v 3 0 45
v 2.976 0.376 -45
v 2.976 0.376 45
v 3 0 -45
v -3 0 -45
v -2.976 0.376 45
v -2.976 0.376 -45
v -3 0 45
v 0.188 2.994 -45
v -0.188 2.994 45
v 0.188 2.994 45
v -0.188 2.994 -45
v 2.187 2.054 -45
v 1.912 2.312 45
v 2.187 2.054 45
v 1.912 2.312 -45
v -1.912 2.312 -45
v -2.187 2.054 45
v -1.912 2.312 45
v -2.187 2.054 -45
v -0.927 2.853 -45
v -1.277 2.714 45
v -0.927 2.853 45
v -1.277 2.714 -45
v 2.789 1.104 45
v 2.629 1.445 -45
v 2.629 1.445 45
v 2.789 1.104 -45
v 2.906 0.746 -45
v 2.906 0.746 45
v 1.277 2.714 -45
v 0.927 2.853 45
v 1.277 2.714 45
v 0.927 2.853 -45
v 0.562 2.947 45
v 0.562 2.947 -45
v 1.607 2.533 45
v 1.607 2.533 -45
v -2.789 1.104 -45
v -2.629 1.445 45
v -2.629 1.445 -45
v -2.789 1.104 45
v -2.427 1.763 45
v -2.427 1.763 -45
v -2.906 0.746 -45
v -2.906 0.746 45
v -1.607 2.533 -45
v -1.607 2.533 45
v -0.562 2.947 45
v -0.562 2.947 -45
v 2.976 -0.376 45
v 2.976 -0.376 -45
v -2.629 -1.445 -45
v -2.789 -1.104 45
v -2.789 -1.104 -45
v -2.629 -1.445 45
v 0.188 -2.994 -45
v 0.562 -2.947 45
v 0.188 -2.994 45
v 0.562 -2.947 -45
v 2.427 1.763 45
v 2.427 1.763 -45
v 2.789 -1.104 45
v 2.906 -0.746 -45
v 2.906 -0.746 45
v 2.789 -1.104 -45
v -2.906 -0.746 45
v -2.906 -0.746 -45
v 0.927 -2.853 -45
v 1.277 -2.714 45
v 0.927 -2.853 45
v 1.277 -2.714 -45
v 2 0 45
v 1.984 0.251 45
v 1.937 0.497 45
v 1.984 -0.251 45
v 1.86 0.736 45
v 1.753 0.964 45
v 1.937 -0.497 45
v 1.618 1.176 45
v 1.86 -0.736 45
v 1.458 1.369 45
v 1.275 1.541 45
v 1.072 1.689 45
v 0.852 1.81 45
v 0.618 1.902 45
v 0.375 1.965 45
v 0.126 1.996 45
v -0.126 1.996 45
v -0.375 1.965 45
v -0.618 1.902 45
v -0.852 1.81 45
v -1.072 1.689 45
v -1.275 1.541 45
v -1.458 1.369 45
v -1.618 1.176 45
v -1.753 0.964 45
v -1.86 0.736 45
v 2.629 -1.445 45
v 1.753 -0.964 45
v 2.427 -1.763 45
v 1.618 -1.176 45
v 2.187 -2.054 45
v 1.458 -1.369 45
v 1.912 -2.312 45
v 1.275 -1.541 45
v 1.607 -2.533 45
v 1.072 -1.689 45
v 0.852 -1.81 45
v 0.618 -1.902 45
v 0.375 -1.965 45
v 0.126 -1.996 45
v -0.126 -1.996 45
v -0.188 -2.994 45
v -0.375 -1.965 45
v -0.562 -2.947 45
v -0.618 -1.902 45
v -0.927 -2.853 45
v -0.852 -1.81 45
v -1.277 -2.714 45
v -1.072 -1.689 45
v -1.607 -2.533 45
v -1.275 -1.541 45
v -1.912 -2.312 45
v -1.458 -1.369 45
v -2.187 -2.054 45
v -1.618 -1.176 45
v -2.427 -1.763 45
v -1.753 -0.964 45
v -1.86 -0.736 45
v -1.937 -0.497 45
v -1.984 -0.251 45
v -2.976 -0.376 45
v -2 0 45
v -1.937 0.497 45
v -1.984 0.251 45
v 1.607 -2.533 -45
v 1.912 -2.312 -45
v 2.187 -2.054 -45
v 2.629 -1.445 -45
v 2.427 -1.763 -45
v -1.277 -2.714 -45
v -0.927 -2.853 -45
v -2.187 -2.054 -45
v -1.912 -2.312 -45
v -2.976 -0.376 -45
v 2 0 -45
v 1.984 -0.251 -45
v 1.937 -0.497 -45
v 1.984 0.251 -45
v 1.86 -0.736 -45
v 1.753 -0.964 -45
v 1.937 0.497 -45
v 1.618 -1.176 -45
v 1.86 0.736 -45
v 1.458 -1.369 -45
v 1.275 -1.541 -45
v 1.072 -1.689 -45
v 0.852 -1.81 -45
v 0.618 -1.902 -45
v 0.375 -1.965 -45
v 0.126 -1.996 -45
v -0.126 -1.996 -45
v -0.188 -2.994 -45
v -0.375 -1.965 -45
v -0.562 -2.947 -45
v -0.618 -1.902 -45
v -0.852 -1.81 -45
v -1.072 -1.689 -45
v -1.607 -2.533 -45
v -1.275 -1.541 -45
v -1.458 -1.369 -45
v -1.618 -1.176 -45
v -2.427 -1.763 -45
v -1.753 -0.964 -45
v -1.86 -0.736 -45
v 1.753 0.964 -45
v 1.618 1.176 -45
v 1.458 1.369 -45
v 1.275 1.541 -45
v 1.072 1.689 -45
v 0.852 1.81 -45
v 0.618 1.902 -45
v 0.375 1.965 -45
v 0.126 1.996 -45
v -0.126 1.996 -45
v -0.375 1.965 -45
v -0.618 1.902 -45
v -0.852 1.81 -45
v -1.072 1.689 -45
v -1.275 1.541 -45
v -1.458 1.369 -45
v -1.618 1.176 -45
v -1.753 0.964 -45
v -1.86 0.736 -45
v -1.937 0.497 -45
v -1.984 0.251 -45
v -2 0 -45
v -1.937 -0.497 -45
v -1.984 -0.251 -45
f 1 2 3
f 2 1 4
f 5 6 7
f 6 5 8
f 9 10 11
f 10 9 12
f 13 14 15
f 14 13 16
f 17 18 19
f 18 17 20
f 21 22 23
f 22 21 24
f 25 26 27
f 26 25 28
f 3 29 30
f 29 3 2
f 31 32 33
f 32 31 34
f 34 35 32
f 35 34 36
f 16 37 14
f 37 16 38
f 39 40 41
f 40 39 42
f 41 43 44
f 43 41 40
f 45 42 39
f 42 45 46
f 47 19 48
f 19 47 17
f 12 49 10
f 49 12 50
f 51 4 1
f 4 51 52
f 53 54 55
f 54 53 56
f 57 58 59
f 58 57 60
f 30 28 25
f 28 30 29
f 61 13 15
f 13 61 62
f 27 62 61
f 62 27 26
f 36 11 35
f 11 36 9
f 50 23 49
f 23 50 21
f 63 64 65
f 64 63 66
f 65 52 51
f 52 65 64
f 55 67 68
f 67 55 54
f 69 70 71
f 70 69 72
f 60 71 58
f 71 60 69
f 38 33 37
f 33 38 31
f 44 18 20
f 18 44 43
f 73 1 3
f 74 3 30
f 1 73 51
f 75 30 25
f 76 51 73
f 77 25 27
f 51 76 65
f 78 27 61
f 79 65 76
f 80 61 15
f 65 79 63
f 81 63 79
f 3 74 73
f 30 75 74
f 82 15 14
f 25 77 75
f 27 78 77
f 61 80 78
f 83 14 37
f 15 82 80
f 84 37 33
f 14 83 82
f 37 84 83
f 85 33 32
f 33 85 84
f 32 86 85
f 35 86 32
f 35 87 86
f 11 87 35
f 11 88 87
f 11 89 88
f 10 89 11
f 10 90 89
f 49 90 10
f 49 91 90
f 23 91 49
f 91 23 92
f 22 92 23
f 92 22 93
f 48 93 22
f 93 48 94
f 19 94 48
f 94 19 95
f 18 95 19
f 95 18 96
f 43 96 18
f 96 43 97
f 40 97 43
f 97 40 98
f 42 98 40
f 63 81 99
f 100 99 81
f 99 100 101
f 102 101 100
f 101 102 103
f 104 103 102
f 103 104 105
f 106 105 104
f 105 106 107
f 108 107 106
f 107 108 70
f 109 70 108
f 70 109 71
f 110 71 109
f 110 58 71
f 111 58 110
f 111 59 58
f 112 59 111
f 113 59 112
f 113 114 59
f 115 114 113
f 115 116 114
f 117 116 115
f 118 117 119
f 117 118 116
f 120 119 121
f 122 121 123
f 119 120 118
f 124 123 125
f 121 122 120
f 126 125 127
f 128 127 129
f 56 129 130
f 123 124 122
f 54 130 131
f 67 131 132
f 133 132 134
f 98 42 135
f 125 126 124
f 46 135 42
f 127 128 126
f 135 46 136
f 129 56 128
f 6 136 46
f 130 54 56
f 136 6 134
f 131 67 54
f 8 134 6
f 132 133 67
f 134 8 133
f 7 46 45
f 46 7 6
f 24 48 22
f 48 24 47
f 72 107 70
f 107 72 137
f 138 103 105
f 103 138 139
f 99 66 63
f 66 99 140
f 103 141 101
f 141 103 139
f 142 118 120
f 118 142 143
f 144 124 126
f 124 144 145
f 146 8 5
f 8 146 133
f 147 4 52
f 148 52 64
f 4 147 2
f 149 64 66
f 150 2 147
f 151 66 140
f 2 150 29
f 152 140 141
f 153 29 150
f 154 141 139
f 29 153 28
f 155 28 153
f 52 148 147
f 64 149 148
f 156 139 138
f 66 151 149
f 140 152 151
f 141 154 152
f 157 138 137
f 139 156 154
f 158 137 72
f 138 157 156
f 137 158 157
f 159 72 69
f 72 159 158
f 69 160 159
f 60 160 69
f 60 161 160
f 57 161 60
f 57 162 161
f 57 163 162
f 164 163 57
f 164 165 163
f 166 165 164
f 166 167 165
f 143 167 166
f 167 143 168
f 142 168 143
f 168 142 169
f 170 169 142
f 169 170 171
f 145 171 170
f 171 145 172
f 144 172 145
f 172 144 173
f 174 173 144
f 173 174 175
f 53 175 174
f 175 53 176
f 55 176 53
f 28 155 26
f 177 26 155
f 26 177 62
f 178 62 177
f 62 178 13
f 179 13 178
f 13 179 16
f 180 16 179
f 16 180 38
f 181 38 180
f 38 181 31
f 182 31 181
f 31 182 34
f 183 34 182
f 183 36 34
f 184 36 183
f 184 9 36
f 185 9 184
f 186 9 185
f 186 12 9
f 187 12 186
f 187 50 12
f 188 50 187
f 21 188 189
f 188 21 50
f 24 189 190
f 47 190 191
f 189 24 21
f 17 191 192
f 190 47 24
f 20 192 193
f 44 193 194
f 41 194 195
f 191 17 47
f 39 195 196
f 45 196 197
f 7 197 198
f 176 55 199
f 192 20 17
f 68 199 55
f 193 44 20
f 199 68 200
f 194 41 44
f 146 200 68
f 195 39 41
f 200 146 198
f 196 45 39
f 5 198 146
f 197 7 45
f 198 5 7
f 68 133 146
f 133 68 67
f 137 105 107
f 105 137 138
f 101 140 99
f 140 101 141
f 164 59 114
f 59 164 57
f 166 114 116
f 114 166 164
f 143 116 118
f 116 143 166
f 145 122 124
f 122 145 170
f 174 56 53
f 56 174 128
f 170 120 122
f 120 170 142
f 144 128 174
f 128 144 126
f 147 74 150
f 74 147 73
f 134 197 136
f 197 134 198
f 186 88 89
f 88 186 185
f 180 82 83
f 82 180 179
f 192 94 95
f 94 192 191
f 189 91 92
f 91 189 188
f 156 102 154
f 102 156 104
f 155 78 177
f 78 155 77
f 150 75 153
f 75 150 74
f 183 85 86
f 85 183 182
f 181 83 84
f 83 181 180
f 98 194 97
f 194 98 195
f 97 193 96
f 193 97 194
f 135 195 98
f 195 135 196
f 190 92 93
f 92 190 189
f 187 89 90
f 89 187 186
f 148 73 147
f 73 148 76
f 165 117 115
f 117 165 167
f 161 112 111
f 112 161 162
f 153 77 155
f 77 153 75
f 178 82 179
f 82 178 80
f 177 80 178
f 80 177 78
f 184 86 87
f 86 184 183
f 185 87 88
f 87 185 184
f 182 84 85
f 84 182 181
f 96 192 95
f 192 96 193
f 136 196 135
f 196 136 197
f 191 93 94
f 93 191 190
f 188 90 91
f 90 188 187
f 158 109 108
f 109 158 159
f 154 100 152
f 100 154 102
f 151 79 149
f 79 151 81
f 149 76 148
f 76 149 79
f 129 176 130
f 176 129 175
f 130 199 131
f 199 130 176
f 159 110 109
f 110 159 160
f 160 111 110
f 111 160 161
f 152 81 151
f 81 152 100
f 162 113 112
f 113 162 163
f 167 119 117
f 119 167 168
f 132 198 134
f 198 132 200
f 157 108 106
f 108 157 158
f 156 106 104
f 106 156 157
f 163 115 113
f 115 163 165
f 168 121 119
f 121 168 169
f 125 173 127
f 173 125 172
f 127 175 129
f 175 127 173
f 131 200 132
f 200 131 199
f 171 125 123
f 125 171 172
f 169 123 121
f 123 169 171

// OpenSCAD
$fn = 50;


difference() {
	union() {
		translate(v = [0, 0, -45.0000000000]) {
			cylinder(h = 90, r = 3.0000000000);
		}
	}
	union() {
		translate(v = [0, 0, -100.0000000000]) {
			cylinder(h = 200, r = 2.0000000000);
		}
	}
}
